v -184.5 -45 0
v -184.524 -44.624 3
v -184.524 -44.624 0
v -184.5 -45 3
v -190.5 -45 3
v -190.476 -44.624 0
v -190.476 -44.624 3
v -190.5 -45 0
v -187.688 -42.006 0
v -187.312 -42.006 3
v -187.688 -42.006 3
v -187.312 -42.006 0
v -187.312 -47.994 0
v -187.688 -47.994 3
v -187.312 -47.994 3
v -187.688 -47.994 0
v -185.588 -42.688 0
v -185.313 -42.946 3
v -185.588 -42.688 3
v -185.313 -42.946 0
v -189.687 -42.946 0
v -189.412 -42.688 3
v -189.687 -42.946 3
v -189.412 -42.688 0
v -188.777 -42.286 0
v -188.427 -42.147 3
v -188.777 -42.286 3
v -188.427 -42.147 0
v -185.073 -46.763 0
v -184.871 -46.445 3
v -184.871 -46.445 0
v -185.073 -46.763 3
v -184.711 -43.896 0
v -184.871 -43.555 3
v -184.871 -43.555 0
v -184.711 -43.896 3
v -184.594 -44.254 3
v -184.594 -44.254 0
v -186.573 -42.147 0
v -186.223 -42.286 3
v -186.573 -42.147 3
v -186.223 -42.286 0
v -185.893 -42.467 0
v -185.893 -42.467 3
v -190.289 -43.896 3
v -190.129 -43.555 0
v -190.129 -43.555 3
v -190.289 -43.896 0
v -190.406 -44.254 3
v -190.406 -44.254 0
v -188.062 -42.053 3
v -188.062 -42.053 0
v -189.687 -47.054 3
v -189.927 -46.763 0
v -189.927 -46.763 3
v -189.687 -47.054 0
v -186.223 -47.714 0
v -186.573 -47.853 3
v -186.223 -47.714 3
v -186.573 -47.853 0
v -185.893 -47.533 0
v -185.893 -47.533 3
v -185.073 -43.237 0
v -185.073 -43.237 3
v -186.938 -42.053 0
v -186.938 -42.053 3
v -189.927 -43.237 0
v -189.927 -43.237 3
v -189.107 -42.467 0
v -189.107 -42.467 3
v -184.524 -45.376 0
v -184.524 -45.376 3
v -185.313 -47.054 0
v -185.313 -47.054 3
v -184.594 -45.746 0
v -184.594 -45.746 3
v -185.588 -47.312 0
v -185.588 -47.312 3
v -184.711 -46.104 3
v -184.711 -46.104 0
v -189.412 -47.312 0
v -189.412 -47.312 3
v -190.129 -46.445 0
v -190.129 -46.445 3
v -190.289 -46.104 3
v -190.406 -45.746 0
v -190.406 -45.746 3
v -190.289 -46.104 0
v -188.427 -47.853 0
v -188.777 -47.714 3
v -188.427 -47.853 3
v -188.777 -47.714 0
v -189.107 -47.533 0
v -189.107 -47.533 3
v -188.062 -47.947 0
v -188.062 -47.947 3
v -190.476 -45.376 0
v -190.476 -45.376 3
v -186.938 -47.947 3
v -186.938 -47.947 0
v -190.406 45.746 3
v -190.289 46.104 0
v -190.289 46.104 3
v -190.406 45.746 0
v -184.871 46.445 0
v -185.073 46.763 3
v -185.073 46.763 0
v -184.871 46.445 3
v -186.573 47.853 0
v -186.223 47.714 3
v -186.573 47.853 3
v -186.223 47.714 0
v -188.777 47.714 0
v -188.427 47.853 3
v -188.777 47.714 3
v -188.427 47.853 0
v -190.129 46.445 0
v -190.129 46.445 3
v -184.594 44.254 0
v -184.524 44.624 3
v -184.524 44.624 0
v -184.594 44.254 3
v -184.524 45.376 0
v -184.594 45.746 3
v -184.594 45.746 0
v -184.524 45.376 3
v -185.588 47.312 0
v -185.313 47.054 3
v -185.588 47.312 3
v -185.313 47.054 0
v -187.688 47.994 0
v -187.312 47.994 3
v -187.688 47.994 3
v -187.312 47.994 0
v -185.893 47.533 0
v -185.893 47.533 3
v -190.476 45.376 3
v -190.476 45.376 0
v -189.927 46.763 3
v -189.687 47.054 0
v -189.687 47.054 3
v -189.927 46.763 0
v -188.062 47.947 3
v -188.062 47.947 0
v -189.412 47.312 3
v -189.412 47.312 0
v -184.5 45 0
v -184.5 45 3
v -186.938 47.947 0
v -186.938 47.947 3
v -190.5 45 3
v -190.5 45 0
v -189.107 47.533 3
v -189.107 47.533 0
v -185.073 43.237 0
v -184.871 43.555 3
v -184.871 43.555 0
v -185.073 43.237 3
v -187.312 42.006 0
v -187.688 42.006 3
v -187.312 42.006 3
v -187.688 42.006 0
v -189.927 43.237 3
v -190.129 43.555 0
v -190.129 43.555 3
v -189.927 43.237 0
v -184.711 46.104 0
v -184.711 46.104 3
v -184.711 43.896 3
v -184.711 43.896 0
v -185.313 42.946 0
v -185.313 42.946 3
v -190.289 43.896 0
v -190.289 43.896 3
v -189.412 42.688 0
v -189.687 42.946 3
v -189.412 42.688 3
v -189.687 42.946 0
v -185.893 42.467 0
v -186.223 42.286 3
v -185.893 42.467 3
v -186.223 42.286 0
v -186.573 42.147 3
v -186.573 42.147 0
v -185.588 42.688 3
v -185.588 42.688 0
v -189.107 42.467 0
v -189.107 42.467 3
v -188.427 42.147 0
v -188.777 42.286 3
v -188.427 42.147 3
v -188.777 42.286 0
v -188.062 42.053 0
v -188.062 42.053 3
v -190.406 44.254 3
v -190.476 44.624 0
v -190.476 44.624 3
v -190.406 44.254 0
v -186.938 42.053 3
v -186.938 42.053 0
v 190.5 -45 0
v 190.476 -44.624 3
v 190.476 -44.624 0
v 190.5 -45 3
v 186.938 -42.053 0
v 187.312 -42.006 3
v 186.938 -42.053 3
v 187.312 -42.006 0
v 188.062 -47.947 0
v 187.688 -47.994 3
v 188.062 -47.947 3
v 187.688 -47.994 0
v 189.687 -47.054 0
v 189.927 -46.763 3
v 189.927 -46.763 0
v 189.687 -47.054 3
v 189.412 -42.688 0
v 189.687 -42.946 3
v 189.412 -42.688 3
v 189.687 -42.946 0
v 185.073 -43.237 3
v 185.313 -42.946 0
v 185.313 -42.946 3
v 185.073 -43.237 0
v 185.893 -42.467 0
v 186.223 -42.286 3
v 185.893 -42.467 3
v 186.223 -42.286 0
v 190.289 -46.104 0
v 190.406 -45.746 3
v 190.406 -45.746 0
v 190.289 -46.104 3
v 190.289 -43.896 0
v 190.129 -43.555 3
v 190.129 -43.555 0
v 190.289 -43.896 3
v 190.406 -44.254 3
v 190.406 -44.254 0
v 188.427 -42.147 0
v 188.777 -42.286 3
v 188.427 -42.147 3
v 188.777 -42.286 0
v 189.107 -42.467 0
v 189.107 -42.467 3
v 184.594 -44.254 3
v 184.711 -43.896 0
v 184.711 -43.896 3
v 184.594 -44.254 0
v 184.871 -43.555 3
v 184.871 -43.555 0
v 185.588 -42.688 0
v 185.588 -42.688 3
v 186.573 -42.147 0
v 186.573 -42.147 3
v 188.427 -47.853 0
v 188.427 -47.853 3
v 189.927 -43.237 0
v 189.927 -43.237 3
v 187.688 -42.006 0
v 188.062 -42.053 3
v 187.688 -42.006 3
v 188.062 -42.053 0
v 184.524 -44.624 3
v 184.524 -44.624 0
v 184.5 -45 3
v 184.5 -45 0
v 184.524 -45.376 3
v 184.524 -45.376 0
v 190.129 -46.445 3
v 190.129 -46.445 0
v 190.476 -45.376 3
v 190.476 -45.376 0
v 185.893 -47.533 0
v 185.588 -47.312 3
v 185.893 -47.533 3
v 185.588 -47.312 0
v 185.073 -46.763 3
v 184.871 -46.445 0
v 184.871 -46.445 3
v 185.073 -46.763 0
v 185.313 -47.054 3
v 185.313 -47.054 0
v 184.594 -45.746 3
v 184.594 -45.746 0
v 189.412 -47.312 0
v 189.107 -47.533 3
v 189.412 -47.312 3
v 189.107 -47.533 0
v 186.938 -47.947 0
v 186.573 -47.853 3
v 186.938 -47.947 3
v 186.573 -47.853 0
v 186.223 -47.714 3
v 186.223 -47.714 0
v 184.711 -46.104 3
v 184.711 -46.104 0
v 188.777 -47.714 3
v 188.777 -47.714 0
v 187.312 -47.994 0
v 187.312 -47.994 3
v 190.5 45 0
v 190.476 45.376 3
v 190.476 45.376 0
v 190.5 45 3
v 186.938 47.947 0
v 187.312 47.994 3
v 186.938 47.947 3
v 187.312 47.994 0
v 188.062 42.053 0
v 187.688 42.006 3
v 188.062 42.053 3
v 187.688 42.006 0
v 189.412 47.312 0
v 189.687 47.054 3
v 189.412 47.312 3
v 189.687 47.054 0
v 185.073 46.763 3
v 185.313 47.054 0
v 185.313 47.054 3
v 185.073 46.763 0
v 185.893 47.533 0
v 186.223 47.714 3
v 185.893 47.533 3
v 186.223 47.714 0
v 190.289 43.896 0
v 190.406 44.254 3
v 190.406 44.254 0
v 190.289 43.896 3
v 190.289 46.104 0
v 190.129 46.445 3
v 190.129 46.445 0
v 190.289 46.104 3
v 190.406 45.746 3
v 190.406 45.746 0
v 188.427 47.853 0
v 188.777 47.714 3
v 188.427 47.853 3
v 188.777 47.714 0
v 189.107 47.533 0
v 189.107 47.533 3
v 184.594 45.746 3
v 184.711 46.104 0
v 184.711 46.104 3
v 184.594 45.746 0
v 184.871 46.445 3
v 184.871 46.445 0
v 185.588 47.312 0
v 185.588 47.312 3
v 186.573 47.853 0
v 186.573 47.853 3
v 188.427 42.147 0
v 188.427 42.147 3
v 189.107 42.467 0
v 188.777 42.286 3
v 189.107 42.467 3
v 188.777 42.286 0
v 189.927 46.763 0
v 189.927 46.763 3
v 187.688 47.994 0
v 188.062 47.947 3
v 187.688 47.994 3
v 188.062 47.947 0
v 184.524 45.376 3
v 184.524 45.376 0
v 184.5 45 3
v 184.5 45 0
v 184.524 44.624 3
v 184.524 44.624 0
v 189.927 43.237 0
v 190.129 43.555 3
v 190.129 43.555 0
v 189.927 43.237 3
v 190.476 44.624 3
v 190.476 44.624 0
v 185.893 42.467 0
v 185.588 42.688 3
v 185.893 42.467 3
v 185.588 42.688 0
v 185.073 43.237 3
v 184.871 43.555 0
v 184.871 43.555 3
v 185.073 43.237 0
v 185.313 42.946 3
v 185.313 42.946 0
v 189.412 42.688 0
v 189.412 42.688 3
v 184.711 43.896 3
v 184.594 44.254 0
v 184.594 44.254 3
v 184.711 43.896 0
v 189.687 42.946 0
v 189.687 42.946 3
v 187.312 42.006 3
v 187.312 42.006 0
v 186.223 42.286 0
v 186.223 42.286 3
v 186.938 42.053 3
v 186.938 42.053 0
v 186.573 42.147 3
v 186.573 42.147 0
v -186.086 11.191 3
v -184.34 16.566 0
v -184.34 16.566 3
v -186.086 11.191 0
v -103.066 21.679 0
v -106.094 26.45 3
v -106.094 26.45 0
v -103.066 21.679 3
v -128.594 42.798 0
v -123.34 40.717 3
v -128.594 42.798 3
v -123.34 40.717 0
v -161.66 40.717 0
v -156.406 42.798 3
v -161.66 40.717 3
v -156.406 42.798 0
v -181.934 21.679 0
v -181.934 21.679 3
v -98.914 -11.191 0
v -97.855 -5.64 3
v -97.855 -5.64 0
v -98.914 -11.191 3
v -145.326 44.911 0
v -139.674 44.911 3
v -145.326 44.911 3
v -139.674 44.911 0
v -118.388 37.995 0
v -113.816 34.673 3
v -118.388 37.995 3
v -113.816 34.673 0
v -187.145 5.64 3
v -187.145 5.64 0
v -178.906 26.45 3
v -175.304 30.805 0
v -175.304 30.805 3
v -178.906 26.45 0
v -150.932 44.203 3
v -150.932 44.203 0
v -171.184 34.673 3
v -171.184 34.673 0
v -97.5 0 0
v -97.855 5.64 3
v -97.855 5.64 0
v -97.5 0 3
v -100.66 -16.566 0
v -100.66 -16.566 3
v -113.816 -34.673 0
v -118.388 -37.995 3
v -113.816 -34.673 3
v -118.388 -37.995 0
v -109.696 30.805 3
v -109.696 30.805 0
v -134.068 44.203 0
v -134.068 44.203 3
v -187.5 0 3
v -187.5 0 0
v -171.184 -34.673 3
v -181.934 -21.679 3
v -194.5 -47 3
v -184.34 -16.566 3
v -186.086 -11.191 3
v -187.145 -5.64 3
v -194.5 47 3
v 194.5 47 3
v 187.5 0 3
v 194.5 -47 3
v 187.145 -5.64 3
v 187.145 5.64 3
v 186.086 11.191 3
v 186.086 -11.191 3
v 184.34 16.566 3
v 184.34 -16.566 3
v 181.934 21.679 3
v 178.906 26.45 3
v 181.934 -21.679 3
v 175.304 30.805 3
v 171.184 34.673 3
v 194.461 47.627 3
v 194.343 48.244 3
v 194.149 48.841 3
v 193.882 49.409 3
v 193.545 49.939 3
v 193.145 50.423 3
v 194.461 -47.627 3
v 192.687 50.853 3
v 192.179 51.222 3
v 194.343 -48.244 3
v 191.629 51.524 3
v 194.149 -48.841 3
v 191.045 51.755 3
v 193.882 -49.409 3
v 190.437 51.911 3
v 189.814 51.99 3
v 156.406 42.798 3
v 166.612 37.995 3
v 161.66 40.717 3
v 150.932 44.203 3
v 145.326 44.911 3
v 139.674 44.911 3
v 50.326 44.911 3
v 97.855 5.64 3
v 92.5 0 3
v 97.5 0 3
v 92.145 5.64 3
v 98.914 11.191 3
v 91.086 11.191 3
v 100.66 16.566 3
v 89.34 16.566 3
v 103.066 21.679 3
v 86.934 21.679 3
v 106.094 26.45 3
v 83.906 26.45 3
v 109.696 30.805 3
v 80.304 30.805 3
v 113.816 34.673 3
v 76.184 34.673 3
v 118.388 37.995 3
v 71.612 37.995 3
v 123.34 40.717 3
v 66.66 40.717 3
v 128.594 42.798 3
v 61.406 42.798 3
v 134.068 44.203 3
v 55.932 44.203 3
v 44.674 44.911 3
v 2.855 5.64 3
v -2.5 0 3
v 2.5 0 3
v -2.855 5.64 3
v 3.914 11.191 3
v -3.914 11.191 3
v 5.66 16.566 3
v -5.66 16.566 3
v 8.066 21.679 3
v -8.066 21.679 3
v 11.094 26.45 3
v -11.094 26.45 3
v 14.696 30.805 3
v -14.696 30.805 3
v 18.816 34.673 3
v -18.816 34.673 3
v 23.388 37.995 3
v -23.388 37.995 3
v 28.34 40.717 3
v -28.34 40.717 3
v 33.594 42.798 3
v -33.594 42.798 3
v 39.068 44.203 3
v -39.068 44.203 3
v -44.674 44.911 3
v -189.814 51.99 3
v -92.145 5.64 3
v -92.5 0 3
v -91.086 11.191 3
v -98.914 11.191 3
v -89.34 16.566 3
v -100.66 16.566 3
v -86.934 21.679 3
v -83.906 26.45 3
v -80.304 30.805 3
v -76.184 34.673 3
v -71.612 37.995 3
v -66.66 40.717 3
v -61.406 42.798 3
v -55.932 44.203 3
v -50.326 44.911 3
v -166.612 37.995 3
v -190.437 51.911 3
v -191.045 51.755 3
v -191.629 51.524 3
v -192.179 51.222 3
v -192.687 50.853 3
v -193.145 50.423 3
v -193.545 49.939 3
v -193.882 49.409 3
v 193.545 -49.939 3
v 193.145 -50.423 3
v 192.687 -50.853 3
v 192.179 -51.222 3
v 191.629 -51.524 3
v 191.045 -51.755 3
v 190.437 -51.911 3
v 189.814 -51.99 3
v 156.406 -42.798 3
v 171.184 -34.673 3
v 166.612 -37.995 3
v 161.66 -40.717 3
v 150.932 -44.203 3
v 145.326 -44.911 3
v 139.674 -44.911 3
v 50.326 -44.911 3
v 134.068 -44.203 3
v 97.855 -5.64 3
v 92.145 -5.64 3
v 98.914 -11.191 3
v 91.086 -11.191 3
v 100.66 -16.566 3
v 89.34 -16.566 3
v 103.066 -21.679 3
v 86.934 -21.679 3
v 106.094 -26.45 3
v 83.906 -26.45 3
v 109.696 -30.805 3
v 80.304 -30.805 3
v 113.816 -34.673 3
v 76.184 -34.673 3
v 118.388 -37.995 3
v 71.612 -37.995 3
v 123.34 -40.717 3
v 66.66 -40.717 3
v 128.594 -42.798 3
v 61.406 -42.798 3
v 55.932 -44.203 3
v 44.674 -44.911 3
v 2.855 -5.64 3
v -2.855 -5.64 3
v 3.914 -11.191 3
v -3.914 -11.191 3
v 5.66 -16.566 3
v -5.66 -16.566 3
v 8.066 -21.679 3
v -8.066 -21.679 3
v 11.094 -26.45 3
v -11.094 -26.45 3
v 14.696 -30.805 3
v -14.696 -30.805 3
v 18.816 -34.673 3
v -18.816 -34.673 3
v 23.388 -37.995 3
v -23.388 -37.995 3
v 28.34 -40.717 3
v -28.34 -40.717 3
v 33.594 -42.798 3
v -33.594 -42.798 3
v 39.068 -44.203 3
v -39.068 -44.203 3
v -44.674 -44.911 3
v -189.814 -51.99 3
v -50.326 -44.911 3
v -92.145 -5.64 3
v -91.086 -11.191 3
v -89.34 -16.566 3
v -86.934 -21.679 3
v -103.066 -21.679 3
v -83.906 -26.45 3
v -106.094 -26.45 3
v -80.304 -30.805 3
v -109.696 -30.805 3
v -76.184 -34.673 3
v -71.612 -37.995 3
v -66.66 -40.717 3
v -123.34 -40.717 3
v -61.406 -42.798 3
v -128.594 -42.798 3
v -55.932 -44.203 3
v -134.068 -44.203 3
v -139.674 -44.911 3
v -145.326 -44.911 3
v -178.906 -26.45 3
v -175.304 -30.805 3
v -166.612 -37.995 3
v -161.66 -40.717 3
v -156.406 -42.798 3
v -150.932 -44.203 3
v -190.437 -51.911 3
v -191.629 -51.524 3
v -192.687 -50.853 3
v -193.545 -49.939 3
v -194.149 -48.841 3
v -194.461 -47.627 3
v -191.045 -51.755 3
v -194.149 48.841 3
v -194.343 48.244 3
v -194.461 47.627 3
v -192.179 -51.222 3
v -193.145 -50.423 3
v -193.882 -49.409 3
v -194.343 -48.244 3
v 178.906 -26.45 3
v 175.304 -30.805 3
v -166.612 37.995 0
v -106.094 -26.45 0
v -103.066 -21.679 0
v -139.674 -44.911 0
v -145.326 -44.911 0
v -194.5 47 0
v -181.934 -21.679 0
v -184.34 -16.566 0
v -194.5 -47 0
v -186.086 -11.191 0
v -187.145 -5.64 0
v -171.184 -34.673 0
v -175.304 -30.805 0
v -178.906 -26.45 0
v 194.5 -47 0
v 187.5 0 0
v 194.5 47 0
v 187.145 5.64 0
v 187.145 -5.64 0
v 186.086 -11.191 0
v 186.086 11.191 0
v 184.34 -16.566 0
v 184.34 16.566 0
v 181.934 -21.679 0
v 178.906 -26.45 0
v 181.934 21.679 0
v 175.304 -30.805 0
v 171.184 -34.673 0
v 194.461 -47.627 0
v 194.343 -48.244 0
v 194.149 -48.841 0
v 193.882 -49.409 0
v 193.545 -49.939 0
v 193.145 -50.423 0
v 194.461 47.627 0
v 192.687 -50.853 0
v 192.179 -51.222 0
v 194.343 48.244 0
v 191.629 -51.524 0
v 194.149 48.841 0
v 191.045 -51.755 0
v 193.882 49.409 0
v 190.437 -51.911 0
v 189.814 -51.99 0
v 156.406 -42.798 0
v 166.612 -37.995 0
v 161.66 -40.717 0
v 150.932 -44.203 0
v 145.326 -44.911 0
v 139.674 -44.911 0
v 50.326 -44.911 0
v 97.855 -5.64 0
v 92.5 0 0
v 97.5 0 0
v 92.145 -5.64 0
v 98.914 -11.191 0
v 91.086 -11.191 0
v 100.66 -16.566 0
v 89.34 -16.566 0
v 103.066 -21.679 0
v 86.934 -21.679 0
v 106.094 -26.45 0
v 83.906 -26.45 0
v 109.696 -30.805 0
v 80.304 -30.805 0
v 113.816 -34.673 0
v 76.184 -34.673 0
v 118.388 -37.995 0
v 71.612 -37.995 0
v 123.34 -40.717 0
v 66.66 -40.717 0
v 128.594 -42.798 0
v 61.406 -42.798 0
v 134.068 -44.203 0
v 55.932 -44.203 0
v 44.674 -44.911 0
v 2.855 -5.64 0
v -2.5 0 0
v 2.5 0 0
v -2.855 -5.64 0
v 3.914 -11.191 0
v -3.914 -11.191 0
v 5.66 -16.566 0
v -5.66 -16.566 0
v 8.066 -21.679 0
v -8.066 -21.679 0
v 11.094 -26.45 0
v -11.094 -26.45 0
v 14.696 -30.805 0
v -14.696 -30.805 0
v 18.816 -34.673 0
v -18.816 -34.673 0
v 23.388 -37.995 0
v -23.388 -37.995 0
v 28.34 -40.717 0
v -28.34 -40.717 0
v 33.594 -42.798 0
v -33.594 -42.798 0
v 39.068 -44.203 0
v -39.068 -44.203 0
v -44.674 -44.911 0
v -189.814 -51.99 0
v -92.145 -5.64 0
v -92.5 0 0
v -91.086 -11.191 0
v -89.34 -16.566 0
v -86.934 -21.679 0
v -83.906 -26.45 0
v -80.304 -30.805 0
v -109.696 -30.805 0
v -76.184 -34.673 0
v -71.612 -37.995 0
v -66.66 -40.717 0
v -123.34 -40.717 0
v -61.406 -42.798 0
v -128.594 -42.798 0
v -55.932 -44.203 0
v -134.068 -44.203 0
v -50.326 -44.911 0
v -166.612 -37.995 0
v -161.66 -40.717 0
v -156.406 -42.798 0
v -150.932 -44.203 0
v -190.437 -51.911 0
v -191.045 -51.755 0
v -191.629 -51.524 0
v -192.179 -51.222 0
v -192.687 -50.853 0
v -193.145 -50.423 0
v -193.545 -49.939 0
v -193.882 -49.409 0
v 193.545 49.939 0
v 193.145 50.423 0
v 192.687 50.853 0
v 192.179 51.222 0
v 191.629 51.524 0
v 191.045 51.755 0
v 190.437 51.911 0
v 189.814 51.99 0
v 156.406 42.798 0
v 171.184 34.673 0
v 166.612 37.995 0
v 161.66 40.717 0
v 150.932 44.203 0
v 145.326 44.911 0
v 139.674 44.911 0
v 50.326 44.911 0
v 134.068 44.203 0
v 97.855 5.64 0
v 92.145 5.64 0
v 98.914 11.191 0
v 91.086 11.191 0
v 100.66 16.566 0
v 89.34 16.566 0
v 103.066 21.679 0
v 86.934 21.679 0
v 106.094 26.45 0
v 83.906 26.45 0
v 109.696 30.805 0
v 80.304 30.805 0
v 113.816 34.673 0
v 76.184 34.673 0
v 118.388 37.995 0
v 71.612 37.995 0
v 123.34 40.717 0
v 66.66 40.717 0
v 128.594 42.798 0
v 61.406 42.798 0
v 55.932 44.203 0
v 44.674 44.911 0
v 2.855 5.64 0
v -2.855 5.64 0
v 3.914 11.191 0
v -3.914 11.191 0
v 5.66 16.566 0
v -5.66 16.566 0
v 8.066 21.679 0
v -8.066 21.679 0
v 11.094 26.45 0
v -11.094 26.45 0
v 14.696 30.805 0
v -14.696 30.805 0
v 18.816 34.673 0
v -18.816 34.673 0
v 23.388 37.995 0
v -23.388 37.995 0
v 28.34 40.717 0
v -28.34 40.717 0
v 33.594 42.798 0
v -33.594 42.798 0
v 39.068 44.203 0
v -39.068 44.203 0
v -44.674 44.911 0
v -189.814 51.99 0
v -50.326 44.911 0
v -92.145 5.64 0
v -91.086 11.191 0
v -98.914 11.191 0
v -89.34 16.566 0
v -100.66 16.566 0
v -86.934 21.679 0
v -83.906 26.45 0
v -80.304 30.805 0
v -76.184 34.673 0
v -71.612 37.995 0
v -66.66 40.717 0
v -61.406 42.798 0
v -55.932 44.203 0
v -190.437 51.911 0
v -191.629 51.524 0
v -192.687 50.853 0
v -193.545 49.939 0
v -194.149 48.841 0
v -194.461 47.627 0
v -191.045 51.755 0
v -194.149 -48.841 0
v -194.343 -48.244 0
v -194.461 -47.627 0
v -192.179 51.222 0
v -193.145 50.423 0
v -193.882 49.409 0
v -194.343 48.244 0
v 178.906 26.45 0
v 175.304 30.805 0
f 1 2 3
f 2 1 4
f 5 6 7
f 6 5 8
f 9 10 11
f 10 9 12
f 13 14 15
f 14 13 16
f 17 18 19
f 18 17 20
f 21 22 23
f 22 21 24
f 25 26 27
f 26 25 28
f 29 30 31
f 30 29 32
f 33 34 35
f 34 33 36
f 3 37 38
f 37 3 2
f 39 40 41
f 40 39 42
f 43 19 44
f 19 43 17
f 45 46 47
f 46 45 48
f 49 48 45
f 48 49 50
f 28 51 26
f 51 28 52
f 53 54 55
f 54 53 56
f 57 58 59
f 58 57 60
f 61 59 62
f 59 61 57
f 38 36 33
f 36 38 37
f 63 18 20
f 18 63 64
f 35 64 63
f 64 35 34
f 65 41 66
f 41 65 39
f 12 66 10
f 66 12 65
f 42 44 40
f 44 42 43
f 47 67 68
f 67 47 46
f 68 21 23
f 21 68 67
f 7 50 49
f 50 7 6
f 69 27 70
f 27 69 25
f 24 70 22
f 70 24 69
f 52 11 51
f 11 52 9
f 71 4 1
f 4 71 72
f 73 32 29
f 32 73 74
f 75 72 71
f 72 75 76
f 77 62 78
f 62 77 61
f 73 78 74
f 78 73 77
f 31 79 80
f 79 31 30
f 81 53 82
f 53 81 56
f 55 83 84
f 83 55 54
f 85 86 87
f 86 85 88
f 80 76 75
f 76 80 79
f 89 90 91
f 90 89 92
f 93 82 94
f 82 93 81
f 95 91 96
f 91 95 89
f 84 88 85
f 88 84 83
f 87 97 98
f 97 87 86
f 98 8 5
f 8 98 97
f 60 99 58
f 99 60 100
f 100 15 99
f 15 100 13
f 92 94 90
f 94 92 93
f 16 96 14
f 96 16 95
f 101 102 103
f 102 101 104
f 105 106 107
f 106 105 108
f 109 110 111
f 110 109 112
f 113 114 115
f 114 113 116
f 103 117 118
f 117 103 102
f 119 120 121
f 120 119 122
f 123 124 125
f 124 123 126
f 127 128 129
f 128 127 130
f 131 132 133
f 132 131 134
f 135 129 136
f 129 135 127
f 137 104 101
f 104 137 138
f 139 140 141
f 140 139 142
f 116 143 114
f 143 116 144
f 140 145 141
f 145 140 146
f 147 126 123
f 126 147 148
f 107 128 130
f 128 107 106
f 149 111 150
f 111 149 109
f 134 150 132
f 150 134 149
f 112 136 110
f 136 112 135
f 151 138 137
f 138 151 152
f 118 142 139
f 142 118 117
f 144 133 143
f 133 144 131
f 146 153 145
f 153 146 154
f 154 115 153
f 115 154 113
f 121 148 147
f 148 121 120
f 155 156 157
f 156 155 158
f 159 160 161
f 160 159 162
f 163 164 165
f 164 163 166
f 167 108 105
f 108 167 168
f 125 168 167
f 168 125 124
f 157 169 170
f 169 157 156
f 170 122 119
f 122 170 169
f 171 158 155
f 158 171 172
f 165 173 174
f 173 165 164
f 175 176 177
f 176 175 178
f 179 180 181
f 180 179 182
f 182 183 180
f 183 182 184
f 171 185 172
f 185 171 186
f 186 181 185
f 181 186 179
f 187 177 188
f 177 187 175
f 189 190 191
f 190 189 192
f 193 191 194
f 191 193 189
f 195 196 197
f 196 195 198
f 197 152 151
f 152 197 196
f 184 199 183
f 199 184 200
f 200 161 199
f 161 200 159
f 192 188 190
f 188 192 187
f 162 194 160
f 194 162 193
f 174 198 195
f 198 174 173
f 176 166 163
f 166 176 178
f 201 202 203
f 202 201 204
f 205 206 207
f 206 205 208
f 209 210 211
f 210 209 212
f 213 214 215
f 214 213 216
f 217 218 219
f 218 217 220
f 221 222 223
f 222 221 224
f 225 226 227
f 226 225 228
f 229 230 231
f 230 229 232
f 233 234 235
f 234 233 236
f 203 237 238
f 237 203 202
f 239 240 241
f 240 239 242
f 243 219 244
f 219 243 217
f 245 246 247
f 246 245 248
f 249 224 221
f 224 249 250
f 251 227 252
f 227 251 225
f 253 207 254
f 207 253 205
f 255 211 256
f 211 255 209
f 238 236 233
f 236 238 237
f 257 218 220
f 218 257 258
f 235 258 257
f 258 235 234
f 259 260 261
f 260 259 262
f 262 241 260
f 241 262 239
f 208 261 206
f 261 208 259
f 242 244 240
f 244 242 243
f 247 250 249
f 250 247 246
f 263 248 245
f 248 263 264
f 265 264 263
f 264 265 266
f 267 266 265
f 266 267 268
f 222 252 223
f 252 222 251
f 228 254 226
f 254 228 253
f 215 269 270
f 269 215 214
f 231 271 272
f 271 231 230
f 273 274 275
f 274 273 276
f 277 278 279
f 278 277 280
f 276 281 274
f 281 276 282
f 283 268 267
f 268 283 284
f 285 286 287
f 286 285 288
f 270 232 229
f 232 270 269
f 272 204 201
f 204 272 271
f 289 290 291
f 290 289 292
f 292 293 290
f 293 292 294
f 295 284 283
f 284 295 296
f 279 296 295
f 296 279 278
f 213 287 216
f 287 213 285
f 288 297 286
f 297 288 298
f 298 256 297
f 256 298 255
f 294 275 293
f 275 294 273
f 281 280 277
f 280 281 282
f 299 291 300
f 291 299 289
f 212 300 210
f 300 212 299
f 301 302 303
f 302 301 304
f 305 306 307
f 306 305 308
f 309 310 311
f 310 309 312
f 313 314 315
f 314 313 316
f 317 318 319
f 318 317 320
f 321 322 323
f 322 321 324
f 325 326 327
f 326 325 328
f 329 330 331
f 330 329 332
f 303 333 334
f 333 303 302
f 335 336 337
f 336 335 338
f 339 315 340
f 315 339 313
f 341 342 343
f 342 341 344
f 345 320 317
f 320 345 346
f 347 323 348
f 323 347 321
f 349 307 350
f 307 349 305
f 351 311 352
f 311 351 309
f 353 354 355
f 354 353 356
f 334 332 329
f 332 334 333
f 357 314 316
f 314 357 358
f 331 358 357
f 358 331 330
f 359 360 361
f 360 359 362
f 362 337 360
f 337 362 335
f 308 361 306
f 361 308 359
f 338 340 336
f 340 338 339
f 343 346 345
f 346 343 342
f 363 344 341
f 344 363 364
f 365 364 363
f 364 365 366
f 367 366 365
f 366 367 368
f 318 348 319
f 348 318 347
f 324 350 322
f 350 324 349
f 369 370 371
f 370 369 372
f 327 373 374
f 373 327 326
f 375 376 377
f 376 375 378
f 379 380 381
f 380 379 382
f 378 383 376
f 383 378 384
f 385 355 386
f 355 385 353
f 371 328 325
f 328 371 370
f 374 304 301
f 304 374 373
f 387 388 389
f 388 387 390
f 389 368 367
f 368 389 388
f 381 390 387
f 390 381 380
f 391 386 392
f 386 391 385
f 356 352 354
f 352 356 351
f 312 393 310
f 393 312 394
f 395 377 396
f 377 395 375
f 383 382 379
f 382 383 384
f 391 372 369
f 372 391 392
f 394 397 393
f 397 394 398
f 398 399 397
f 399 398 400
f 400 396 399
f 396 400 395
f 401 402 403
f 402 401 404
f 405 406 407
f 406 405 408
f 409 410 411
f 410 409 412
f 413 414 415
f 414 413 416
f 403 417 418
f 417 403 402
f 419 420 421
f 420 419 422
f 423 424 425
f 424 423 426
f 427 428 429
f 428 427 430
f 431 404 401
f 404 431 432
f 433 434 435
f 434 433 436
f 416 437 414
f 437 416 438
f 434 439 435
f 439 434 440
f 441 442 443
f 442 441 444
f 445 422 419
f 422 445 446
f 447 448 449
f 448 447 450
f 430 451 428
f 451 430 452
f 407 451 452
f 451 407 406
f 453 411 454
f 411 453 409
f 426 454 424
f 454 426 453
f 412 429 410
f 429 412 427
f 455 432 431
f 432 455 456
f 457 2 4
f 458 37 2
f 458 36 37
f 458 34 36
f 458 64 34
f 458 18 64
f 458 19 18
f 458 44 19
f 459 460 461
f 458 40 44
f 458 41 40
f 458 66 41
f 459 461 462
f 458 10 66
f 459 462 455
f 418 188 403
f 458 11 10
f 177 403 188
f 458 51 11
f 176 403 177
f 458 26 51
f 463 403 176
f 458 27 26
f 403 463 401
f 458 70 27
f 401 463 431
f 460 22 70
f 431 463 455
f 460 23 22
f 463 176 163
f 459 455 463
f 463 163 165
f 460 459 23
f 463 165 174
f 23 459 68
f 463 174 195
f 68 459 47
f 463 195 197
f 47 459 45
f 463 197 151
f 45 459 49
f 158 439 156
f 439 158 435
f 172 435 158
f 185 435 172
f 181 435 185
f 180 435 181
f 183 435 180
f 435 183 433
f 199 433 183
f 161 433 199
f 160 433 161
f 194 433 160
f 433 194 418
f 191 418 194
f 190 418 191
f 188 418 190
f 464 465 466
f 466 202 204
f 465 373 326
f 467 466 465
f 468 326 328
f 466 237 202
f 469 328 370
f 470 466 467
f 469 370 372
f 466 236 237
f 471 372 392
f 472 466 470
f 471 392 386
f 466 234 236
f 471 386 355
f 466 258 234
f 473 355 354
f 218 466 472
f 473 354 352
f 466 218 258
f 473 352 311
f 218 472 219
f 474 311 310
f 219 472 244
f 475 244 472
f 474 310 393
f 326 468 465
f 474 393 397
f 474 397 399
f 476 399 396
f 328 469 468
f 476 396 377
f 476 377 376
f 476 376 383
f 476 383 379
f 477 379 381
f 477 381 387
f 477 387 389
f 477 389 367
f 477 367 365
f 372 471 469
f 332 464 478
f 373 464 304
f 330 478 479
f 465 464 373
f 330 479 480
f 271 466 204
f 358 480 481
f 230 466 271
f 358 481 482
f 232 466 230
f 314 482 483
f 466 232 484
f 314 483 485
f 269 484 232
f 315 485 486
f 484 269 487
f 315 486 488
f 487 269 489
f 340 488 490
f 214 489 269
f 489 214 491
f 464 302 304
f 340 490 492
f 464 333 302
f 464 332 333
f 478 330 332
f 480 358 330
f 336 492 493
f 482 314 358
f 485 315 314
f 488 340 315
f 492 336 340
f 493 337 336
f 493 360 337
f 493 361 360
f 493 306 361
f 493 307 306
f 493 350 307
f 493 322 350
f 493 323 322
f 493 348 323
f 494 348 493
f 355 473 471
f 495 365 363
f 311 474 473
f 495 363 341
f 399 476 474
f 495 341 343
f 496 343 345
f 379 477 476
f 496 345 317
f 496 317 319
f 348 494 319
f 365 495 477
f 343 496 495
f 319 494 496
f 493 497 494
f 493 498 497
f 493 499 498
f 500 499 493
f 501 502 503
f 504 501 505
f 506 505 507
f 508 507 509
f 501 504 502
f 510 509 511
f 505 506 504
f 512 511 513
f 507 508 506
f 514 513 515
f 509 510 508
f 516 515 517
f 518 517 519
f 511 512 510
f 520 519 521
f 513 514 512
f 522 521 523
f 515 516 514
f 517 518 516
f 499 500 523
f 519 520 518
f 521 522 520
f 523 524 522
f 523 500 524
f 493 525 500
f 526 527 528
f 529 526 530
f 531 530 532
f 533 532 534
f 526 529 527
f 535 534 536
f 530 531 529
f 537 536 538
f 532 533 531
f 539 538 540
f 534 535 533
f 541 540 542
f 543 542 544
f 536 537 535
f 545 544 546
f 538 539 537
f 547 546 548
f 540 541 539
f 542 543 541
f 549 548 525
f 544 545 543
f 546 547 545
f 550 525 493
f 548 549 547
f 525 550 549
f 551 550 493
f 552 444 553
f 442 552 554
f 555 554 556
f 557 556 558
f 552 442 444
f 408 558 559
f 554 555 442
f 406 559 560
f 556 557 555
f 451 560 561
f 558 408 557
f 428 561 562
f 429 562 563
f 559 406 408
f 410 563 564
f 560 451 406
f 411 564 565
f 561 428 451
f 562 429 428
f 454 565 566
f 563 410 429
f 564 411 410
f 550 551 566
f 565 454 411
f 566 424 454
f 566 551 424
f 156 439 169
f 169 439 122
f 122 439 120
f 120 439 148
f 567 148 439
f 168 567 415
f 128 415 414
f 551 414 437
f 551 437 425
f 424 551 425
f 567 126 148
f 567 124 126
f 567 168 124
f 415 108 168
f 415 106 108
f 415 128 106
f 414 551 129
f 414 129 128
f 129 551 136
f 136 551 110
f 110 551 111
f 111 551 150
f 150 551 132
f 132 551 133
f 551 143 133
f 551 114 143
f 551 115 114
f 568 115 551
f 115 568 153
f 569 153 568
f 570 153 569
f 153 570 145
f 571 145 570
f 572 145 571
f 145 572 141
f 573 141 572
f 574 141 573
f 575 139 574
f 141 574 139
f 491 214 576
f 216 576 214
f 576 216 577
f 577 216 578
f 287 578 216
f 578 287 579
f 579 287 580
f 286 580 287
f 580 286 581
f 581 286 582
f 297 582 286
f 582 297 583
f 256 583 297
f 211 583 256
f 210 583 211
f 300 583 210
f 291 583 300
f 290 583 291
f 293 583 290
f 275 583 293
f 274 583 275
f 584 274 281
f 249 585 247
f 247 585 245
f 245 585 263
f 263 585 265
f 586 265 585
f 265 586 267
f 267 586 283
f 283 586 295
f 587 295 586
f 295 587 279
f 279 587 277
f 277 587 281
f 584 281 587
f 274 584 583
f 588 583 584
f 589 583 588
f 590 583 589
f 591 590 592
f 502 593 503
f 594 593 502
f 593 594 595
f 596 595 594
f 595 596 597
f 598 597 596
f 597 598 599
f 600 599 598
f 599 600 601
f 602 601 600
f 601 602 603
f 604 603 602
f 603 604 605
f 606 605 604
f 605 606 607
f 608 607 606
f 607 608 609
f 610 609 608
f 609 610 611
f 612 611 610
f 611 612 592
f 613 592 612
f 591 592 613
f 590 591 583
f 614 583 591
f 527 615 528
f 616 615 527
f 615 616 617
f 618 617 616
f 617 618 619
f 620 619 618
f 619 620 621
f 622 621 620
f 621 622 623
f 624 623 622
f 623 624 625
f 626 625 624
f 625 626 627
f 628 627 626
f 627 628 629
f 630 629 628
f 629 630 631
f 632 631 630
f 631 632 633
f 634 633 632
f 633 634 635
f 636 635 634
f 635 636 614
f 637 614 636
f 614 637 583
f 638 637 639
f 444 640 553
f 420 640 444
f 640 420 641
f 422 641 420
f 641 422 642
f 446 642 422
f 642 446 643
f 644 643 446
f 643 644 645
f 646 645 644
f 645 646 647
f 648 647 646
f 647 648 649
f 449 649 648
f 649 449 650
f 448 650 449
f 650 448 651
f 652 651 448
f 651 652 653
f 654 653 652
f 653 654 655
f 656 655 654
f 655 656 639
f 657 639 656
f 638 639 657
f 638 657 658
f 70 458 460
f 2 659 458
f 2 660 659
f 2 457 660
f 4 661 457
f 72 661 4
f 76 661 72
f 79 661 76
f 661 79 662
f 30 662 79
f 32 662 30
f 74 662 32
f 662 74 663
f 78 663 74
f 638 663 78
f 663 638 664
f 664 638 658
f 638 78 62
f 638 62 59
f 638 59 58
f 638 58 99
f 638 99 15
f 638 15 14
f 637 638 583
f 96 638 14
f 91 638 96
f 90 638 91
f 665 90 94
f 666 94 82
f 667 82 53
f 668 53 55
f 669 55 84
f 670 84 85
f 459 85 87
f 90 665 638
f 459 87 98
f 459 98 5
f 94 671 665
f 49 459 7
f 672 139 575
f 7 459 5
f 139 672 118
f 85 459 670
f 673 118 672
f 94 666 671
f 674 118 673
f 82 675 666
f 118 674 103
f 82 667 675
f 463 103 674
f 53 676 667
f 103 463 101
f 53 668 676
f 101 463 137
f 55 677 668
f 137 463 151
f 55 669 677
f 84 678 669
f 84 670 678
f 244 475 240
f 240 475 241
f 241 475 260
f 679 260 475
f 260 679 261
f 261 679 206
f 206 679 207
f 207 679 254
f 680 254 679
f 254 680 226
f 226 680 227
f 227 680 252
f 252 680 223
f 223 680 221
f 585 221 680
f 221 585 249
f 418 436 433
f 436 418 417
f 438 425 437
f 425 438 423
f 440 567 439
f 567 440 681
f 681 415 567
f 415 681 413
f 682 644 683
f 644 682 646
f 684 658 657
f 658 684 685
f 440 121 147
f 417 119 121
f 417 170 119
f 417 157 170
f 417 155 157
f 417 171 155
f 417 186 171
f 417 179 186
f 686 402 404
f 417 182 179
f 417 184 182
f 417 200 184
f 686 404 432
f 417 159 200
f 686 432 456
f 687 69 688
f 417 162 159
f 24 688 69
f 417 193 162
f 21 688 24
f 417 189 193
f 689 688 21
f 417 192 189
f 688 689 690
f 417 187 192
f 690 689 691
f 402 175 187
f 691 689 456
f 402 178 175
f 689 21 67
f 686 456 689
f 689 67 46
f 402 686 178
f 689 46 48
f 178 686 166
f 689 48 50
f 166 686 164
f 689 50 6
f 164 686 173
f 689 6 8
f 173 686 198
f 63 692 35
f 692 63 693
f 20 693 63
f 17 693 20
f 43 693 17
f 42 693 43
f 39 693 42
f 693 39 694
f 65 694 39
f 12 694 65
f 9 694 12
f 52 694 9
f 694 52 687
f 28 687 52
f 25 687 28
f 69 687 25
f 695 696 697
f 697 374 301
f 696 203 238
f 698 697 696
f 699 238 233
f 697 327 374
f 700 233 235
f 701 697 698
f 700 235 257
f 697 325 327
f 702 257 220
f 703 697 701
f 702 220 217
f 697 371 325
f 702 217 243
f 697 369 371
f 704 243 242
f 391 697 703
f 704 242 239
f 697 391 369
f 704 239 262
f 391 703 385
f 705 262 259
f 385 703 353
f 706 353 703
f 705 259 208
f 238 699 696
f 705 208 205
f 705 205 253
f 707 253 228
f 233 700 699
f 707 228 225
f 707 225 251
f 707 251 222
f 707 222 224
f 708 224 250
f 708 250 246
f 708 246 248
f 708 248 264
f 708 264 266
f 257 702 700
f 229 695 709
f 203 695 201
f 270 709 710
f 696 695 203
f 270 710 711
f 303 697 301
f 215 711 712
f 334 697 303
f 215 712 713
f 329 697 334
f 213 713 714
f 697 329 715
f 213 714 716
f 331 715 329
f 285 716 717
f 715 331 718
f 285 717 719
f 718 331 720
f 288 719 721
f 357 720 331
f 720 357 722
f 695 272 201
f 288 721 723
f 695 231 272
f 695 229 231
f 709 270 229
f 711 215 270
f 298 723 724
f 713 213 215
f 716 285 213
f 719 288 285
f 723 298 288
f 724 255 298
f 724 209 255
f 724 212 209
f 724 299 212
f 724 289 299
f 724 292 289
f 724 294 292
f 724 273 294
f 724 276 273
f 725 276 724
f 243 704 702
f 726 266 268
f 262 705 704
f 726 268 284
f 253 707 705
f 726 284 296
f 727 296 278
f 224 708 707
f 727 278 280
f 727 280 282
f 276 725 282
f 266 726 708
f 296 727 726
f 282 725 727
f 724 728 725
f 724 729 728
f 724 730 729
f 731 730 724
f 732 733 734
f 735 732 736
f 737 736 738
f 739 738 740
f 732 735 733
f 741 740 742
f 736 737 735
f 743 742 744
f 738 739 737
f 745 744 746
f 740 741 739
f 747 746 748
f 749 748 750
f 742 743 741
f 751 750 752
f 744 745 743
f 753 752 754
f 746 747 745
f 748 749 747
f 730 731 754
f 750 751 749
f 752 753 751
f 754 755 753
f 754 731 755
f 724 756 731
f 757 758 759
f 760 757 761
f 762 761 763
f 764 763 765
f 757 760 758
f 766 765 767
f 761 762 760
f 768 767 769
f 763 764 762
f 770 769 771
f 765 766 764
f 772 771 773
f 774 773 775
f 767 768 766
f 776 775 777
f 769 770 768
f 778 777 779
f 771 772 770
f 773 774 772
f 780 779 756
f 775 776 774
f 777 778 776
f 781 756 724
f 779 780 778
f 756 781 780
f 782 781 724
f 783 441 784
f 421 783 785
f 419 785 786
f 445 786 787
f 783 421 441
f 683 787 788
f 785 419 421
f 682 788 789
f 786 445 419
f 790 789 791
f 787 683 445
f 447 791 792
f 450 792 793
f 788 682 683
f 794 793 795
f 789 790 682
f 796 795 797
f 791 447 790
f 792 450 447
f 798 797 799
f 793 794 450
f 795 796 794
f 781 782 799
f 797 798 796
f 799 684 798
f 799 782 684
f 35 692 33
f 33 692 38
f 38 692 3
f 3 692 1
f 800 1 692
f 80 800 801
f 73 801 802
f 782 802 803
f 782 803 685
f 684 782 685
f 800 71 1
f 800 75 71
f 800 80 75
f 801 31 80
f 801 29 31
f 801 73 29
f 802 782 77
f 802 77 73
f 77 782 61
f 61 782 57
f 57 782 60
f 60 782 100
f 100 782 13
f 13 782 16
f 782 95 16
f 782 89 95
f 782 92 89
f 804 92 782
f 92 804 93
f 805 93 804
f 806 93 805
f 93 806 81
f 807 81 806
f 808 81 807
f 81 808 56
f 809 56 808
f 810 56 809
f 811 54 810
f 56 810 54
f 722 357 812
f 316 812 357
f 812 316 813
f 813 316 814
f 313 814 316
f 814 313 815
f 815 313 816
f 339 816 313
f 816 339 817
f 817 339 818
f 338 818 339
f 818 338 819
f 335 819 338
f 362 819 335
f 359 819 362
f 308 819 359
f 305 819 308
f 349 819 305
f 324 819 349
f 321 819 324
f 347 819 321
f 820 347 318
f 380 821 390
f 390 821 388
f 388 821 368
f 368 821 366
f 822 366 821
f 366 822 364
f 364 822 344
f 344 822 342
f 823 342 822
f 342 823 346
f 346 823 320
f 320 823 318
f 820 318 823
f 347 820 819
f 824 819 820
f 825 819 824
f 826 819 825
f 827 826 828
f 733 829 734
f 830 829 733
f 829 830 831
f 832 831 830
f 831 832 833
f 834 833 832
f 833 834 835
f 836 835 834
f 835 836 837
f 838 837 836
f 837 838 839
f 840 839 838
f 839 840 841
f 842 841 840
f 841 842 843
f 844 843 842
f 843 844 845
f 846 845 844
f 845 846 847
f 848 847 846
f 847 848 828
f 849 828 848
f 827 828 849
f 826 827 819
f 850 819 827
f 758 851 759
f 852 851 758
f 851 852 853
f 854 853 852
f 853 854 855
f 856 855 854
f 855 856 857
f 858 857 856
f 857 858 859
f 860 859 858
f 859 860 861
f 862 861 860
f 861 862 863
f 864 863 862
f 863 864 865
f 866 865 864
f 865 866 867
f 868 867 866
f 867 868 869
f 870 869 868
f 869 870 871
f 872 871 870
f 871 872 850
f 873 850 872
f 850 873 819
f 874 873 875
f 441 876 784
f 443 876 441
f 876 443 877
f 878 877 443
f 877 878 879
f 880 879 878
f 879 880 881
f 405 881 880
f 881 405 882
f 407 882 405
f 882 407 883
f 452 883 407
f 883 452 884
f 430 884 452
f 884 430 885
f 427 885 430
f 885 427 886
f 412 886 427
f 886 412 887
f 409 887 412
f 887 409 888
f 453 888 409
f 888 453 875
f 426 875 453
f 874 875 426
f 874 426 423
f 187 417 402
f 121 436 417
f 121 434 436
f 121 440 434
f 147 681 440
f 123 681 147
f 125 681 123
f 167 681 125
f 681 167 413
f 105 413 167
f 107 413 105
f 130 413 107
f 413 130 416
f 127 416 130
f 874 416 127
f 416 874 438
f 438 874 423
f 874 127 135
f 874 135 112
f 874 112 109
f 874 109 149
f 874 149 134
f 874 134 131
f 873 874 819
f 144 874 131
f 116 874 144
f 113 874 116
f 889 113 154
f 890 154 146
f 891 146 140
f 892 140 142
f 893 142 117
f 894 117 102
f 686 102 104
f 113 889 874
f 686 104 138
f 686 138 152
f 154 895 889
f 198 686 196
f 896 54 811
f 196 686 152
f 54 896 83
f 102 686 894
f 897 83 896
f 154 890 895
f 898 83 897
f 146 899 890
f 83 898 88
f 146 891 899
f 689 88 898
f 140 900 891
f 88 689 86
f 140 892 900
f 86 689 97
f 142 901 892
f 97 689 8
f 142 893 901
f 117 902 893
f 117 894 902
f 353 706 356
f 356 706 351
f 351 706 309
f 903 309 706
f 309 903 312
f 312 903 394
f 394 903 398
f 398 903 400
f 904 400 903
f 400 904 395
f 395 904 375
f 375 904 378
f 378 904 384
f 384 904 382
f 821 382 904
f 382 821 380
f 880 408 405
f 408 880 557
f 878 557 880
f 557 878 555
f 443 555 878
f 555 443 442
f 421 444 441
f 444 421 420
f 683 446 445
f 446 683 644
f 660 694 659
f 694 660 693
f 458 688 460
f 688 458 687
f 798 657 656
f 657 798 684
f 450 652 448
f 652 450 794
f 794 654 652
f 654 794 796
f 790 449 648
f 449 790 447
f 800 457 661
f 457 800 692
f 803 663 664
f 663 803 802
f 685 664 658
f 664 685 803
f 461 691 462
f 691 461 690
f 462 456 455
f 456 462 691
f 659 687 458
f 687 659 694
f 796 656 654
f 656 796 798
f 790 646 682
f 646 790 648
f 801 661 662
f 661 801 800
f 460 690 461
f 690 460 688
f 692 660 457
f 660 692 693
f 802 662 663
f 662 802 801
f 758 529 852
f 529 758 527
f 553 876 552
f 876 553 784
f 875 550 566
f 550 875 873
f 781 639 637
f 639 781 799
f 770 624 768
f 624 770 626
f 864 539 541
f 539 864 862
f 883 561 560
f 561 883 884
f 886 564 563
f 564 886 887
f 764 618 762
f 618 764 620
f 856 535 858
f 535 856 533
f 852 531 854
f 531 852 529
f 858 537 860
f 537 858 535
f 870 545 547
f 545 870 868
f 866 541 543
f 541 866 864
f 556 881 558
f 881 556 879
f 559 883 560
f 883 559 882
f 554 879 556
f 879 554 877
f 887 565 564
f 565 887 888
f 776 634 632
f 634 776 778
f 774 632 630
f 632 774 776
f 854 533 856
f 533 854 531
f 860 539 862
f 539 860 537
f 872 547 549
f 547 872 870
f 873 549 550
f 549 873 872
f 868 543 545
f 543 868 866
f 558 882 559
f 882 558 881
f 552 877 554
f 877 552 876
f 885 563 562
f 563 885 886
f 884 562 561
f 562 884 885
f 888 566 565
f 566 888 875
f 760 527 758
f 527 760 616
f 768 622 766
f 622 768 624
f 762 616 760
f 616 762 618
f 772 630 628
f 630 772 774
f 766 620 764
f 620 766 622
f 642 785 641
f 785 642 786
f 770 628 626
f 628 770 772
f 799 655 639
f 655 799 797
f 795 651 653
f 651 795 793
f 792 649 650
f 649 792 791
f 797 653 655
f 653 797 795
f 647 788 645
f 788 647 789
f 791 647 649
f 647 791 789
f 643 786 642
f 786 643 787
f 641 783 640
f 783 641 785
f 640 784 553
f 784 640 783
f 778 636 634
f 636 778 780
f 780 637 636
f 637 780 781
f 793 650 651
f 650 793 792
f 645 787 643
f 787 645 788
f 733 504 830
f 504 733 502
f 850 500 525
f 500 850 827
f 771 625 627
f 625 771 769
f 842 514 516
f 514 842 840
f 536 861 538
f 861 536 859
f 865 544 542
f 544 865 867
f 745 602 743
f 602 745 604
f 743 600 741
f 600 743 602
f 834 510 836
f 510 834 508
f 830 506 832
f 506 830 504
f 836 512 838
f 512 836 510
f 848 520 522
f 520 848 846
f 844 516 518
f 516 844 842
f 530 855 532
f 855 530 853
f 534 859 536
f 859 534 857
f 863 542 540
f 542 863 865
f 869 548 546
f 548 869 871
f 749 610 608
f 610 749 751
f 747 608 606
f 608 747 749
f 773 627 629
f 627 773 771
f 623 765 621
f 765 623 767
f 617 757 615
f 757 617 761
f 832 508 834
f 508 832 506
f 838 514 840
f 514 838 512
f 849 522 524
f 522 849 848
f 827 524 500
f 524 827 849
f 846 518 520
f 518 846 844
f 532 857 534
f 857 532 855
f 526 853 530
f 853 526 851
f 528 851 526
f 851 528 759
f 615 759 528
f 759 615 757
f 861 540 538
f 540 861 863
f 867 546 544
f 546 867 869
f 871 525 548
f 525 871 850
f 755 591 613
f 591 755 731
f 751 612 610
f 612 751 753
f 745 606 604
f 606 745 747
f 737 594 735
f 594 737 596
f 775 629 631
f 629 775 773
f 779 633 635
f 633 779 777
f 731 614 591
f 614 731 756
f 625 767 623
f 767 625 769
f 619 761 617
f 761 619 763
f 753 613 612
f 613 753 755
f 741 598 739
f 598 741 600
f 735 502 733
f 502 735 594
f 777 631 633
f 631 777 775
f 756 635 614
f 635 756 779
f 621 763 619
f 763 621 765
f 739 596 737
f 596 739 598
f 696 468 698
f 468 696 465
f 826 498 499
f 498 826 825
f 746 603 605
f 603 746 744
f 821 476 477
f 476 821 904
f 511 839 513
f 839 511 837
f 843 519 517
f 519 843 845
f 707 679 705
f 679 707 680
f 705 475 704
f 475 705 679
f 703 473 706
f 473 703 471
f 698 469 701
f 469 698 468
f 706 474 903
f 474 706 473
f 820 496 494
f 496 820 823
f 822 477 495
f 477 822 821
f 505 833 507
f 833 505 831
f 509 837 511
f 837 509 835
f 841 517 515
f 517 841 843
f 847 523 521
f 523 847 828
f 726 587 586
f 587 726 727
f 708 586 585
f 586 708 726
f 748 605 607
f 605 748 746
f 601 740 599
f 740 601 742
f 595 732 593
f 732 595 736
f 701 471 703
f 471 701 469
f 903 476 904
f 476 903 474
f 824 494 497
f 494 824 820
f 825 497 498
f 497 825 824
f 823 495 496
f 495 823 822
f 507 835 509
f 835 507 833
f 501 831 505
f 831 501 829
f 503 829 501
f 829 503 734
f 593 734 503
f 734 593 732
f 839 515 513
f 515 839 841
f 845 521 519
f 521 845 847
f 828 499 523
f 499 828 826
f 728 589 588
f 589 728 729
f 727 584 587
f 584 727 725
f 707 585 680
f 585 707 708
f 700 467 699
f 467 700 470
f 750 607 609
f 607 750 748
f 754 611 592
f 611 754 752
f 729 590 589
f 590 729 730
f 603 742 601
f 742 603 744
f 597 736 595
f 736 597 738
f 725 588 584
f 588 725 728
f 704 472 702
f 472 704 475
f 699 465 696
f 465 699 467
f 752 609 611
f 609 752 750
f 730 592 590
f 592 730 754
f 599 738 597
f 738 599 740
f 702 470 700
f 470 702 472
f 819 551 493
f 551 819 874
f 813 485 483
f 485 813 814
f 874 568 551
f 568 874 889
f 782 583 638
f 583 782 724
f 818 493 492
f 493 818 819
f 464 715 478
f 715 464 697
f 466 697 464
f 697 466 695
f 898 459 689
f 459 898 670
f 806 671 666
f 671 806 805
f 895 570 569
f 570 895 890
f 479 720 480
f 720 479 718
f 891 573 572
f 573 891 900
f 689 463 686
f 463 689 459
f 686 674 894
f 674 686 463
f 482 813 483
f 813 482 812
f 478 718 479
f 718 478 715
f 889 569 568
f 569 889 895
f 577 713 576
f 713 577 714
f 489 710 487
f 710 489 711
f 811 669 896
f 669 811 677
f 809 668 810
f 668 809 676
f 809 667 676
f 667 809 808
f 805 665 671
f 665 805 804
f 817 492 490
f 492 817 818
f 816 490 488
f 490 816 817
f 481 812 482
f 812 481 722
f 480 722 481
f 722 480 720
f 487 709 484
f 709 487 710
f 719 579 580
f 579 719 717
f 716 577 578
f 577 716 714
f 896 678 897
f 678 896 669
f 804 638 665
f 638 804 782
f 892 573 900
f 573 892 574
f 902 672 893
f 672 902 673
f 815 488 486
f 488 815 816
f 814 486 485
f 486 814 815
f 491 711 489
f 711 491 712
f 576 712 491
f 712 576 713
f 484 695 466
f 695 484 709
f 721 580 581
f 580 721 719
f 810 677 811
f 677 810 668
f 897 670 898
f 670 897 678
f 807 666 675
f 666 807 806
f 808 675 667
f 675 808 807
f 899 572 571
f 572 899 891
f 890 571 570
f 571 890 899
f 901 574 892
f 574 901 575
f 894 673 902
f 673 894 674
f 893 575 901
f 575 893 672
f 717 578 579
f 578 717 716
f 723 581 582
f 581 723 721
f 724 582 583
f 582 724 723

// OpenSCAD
$fn = 50;


difference() {
	union() {
		hull() {
			translate(v = [-189.5000000000, 47.0000000000, 0]) {
				cylinder(h = 3, r = 5);
			}
			translate(v = [189.5000000000, 47.0000000000, 0]) {
				cylinder(h = 3, r = 5);
			}
			translate(v = [-189.5000000000, -47.0000000000, 0]) {
				cylinder(h = 3, r = 5);
			}
			translate(v = [189.5000000000, -47.0000000000, 0]) {
				cylinder(h = 3, r = 5);
			}
		}
	}
	union() {
		#translate(v = [-187.5000000000, -45.0000000000, -100.0000000000]) {
			cylinder(h = 200, r = 3.0000000000);
		}
		#translate(v = [-187.5000000000, 45.0000000000, -100.0000000000]) {
			cylinder(h = 200, r = 3.0000000000);
		}
		#translate(v = [187.5000000000, -45.0000000000, -100.0000000000]) {
			cylinder(h = 200, r = 3.0000000000);
		}
		#translate(v = [187.5000000000, 45.0000000000, -100.0000000000]) {
			cylinder(h = 200, r = 3.0000000000);
		}
		#translate(v = [-142.5000000000, 0, 0]) {
			cylinder(h = 3, r = 45.0000000000);
		}
		#translate(v = [-47.5000000000, 0, 0]) {
			cylinder(h = 3, r = 45.0000000000);
		}
		#translate(v = [47.5000000000, 0, 0]) {
			cylinder(h = 3, r = 45.0000000000);
		}
		#translate(v = [142.5000000000, 0, 0]) {
			cylinder(h = 3, r = 45.0000000000);
		}
	}
}
